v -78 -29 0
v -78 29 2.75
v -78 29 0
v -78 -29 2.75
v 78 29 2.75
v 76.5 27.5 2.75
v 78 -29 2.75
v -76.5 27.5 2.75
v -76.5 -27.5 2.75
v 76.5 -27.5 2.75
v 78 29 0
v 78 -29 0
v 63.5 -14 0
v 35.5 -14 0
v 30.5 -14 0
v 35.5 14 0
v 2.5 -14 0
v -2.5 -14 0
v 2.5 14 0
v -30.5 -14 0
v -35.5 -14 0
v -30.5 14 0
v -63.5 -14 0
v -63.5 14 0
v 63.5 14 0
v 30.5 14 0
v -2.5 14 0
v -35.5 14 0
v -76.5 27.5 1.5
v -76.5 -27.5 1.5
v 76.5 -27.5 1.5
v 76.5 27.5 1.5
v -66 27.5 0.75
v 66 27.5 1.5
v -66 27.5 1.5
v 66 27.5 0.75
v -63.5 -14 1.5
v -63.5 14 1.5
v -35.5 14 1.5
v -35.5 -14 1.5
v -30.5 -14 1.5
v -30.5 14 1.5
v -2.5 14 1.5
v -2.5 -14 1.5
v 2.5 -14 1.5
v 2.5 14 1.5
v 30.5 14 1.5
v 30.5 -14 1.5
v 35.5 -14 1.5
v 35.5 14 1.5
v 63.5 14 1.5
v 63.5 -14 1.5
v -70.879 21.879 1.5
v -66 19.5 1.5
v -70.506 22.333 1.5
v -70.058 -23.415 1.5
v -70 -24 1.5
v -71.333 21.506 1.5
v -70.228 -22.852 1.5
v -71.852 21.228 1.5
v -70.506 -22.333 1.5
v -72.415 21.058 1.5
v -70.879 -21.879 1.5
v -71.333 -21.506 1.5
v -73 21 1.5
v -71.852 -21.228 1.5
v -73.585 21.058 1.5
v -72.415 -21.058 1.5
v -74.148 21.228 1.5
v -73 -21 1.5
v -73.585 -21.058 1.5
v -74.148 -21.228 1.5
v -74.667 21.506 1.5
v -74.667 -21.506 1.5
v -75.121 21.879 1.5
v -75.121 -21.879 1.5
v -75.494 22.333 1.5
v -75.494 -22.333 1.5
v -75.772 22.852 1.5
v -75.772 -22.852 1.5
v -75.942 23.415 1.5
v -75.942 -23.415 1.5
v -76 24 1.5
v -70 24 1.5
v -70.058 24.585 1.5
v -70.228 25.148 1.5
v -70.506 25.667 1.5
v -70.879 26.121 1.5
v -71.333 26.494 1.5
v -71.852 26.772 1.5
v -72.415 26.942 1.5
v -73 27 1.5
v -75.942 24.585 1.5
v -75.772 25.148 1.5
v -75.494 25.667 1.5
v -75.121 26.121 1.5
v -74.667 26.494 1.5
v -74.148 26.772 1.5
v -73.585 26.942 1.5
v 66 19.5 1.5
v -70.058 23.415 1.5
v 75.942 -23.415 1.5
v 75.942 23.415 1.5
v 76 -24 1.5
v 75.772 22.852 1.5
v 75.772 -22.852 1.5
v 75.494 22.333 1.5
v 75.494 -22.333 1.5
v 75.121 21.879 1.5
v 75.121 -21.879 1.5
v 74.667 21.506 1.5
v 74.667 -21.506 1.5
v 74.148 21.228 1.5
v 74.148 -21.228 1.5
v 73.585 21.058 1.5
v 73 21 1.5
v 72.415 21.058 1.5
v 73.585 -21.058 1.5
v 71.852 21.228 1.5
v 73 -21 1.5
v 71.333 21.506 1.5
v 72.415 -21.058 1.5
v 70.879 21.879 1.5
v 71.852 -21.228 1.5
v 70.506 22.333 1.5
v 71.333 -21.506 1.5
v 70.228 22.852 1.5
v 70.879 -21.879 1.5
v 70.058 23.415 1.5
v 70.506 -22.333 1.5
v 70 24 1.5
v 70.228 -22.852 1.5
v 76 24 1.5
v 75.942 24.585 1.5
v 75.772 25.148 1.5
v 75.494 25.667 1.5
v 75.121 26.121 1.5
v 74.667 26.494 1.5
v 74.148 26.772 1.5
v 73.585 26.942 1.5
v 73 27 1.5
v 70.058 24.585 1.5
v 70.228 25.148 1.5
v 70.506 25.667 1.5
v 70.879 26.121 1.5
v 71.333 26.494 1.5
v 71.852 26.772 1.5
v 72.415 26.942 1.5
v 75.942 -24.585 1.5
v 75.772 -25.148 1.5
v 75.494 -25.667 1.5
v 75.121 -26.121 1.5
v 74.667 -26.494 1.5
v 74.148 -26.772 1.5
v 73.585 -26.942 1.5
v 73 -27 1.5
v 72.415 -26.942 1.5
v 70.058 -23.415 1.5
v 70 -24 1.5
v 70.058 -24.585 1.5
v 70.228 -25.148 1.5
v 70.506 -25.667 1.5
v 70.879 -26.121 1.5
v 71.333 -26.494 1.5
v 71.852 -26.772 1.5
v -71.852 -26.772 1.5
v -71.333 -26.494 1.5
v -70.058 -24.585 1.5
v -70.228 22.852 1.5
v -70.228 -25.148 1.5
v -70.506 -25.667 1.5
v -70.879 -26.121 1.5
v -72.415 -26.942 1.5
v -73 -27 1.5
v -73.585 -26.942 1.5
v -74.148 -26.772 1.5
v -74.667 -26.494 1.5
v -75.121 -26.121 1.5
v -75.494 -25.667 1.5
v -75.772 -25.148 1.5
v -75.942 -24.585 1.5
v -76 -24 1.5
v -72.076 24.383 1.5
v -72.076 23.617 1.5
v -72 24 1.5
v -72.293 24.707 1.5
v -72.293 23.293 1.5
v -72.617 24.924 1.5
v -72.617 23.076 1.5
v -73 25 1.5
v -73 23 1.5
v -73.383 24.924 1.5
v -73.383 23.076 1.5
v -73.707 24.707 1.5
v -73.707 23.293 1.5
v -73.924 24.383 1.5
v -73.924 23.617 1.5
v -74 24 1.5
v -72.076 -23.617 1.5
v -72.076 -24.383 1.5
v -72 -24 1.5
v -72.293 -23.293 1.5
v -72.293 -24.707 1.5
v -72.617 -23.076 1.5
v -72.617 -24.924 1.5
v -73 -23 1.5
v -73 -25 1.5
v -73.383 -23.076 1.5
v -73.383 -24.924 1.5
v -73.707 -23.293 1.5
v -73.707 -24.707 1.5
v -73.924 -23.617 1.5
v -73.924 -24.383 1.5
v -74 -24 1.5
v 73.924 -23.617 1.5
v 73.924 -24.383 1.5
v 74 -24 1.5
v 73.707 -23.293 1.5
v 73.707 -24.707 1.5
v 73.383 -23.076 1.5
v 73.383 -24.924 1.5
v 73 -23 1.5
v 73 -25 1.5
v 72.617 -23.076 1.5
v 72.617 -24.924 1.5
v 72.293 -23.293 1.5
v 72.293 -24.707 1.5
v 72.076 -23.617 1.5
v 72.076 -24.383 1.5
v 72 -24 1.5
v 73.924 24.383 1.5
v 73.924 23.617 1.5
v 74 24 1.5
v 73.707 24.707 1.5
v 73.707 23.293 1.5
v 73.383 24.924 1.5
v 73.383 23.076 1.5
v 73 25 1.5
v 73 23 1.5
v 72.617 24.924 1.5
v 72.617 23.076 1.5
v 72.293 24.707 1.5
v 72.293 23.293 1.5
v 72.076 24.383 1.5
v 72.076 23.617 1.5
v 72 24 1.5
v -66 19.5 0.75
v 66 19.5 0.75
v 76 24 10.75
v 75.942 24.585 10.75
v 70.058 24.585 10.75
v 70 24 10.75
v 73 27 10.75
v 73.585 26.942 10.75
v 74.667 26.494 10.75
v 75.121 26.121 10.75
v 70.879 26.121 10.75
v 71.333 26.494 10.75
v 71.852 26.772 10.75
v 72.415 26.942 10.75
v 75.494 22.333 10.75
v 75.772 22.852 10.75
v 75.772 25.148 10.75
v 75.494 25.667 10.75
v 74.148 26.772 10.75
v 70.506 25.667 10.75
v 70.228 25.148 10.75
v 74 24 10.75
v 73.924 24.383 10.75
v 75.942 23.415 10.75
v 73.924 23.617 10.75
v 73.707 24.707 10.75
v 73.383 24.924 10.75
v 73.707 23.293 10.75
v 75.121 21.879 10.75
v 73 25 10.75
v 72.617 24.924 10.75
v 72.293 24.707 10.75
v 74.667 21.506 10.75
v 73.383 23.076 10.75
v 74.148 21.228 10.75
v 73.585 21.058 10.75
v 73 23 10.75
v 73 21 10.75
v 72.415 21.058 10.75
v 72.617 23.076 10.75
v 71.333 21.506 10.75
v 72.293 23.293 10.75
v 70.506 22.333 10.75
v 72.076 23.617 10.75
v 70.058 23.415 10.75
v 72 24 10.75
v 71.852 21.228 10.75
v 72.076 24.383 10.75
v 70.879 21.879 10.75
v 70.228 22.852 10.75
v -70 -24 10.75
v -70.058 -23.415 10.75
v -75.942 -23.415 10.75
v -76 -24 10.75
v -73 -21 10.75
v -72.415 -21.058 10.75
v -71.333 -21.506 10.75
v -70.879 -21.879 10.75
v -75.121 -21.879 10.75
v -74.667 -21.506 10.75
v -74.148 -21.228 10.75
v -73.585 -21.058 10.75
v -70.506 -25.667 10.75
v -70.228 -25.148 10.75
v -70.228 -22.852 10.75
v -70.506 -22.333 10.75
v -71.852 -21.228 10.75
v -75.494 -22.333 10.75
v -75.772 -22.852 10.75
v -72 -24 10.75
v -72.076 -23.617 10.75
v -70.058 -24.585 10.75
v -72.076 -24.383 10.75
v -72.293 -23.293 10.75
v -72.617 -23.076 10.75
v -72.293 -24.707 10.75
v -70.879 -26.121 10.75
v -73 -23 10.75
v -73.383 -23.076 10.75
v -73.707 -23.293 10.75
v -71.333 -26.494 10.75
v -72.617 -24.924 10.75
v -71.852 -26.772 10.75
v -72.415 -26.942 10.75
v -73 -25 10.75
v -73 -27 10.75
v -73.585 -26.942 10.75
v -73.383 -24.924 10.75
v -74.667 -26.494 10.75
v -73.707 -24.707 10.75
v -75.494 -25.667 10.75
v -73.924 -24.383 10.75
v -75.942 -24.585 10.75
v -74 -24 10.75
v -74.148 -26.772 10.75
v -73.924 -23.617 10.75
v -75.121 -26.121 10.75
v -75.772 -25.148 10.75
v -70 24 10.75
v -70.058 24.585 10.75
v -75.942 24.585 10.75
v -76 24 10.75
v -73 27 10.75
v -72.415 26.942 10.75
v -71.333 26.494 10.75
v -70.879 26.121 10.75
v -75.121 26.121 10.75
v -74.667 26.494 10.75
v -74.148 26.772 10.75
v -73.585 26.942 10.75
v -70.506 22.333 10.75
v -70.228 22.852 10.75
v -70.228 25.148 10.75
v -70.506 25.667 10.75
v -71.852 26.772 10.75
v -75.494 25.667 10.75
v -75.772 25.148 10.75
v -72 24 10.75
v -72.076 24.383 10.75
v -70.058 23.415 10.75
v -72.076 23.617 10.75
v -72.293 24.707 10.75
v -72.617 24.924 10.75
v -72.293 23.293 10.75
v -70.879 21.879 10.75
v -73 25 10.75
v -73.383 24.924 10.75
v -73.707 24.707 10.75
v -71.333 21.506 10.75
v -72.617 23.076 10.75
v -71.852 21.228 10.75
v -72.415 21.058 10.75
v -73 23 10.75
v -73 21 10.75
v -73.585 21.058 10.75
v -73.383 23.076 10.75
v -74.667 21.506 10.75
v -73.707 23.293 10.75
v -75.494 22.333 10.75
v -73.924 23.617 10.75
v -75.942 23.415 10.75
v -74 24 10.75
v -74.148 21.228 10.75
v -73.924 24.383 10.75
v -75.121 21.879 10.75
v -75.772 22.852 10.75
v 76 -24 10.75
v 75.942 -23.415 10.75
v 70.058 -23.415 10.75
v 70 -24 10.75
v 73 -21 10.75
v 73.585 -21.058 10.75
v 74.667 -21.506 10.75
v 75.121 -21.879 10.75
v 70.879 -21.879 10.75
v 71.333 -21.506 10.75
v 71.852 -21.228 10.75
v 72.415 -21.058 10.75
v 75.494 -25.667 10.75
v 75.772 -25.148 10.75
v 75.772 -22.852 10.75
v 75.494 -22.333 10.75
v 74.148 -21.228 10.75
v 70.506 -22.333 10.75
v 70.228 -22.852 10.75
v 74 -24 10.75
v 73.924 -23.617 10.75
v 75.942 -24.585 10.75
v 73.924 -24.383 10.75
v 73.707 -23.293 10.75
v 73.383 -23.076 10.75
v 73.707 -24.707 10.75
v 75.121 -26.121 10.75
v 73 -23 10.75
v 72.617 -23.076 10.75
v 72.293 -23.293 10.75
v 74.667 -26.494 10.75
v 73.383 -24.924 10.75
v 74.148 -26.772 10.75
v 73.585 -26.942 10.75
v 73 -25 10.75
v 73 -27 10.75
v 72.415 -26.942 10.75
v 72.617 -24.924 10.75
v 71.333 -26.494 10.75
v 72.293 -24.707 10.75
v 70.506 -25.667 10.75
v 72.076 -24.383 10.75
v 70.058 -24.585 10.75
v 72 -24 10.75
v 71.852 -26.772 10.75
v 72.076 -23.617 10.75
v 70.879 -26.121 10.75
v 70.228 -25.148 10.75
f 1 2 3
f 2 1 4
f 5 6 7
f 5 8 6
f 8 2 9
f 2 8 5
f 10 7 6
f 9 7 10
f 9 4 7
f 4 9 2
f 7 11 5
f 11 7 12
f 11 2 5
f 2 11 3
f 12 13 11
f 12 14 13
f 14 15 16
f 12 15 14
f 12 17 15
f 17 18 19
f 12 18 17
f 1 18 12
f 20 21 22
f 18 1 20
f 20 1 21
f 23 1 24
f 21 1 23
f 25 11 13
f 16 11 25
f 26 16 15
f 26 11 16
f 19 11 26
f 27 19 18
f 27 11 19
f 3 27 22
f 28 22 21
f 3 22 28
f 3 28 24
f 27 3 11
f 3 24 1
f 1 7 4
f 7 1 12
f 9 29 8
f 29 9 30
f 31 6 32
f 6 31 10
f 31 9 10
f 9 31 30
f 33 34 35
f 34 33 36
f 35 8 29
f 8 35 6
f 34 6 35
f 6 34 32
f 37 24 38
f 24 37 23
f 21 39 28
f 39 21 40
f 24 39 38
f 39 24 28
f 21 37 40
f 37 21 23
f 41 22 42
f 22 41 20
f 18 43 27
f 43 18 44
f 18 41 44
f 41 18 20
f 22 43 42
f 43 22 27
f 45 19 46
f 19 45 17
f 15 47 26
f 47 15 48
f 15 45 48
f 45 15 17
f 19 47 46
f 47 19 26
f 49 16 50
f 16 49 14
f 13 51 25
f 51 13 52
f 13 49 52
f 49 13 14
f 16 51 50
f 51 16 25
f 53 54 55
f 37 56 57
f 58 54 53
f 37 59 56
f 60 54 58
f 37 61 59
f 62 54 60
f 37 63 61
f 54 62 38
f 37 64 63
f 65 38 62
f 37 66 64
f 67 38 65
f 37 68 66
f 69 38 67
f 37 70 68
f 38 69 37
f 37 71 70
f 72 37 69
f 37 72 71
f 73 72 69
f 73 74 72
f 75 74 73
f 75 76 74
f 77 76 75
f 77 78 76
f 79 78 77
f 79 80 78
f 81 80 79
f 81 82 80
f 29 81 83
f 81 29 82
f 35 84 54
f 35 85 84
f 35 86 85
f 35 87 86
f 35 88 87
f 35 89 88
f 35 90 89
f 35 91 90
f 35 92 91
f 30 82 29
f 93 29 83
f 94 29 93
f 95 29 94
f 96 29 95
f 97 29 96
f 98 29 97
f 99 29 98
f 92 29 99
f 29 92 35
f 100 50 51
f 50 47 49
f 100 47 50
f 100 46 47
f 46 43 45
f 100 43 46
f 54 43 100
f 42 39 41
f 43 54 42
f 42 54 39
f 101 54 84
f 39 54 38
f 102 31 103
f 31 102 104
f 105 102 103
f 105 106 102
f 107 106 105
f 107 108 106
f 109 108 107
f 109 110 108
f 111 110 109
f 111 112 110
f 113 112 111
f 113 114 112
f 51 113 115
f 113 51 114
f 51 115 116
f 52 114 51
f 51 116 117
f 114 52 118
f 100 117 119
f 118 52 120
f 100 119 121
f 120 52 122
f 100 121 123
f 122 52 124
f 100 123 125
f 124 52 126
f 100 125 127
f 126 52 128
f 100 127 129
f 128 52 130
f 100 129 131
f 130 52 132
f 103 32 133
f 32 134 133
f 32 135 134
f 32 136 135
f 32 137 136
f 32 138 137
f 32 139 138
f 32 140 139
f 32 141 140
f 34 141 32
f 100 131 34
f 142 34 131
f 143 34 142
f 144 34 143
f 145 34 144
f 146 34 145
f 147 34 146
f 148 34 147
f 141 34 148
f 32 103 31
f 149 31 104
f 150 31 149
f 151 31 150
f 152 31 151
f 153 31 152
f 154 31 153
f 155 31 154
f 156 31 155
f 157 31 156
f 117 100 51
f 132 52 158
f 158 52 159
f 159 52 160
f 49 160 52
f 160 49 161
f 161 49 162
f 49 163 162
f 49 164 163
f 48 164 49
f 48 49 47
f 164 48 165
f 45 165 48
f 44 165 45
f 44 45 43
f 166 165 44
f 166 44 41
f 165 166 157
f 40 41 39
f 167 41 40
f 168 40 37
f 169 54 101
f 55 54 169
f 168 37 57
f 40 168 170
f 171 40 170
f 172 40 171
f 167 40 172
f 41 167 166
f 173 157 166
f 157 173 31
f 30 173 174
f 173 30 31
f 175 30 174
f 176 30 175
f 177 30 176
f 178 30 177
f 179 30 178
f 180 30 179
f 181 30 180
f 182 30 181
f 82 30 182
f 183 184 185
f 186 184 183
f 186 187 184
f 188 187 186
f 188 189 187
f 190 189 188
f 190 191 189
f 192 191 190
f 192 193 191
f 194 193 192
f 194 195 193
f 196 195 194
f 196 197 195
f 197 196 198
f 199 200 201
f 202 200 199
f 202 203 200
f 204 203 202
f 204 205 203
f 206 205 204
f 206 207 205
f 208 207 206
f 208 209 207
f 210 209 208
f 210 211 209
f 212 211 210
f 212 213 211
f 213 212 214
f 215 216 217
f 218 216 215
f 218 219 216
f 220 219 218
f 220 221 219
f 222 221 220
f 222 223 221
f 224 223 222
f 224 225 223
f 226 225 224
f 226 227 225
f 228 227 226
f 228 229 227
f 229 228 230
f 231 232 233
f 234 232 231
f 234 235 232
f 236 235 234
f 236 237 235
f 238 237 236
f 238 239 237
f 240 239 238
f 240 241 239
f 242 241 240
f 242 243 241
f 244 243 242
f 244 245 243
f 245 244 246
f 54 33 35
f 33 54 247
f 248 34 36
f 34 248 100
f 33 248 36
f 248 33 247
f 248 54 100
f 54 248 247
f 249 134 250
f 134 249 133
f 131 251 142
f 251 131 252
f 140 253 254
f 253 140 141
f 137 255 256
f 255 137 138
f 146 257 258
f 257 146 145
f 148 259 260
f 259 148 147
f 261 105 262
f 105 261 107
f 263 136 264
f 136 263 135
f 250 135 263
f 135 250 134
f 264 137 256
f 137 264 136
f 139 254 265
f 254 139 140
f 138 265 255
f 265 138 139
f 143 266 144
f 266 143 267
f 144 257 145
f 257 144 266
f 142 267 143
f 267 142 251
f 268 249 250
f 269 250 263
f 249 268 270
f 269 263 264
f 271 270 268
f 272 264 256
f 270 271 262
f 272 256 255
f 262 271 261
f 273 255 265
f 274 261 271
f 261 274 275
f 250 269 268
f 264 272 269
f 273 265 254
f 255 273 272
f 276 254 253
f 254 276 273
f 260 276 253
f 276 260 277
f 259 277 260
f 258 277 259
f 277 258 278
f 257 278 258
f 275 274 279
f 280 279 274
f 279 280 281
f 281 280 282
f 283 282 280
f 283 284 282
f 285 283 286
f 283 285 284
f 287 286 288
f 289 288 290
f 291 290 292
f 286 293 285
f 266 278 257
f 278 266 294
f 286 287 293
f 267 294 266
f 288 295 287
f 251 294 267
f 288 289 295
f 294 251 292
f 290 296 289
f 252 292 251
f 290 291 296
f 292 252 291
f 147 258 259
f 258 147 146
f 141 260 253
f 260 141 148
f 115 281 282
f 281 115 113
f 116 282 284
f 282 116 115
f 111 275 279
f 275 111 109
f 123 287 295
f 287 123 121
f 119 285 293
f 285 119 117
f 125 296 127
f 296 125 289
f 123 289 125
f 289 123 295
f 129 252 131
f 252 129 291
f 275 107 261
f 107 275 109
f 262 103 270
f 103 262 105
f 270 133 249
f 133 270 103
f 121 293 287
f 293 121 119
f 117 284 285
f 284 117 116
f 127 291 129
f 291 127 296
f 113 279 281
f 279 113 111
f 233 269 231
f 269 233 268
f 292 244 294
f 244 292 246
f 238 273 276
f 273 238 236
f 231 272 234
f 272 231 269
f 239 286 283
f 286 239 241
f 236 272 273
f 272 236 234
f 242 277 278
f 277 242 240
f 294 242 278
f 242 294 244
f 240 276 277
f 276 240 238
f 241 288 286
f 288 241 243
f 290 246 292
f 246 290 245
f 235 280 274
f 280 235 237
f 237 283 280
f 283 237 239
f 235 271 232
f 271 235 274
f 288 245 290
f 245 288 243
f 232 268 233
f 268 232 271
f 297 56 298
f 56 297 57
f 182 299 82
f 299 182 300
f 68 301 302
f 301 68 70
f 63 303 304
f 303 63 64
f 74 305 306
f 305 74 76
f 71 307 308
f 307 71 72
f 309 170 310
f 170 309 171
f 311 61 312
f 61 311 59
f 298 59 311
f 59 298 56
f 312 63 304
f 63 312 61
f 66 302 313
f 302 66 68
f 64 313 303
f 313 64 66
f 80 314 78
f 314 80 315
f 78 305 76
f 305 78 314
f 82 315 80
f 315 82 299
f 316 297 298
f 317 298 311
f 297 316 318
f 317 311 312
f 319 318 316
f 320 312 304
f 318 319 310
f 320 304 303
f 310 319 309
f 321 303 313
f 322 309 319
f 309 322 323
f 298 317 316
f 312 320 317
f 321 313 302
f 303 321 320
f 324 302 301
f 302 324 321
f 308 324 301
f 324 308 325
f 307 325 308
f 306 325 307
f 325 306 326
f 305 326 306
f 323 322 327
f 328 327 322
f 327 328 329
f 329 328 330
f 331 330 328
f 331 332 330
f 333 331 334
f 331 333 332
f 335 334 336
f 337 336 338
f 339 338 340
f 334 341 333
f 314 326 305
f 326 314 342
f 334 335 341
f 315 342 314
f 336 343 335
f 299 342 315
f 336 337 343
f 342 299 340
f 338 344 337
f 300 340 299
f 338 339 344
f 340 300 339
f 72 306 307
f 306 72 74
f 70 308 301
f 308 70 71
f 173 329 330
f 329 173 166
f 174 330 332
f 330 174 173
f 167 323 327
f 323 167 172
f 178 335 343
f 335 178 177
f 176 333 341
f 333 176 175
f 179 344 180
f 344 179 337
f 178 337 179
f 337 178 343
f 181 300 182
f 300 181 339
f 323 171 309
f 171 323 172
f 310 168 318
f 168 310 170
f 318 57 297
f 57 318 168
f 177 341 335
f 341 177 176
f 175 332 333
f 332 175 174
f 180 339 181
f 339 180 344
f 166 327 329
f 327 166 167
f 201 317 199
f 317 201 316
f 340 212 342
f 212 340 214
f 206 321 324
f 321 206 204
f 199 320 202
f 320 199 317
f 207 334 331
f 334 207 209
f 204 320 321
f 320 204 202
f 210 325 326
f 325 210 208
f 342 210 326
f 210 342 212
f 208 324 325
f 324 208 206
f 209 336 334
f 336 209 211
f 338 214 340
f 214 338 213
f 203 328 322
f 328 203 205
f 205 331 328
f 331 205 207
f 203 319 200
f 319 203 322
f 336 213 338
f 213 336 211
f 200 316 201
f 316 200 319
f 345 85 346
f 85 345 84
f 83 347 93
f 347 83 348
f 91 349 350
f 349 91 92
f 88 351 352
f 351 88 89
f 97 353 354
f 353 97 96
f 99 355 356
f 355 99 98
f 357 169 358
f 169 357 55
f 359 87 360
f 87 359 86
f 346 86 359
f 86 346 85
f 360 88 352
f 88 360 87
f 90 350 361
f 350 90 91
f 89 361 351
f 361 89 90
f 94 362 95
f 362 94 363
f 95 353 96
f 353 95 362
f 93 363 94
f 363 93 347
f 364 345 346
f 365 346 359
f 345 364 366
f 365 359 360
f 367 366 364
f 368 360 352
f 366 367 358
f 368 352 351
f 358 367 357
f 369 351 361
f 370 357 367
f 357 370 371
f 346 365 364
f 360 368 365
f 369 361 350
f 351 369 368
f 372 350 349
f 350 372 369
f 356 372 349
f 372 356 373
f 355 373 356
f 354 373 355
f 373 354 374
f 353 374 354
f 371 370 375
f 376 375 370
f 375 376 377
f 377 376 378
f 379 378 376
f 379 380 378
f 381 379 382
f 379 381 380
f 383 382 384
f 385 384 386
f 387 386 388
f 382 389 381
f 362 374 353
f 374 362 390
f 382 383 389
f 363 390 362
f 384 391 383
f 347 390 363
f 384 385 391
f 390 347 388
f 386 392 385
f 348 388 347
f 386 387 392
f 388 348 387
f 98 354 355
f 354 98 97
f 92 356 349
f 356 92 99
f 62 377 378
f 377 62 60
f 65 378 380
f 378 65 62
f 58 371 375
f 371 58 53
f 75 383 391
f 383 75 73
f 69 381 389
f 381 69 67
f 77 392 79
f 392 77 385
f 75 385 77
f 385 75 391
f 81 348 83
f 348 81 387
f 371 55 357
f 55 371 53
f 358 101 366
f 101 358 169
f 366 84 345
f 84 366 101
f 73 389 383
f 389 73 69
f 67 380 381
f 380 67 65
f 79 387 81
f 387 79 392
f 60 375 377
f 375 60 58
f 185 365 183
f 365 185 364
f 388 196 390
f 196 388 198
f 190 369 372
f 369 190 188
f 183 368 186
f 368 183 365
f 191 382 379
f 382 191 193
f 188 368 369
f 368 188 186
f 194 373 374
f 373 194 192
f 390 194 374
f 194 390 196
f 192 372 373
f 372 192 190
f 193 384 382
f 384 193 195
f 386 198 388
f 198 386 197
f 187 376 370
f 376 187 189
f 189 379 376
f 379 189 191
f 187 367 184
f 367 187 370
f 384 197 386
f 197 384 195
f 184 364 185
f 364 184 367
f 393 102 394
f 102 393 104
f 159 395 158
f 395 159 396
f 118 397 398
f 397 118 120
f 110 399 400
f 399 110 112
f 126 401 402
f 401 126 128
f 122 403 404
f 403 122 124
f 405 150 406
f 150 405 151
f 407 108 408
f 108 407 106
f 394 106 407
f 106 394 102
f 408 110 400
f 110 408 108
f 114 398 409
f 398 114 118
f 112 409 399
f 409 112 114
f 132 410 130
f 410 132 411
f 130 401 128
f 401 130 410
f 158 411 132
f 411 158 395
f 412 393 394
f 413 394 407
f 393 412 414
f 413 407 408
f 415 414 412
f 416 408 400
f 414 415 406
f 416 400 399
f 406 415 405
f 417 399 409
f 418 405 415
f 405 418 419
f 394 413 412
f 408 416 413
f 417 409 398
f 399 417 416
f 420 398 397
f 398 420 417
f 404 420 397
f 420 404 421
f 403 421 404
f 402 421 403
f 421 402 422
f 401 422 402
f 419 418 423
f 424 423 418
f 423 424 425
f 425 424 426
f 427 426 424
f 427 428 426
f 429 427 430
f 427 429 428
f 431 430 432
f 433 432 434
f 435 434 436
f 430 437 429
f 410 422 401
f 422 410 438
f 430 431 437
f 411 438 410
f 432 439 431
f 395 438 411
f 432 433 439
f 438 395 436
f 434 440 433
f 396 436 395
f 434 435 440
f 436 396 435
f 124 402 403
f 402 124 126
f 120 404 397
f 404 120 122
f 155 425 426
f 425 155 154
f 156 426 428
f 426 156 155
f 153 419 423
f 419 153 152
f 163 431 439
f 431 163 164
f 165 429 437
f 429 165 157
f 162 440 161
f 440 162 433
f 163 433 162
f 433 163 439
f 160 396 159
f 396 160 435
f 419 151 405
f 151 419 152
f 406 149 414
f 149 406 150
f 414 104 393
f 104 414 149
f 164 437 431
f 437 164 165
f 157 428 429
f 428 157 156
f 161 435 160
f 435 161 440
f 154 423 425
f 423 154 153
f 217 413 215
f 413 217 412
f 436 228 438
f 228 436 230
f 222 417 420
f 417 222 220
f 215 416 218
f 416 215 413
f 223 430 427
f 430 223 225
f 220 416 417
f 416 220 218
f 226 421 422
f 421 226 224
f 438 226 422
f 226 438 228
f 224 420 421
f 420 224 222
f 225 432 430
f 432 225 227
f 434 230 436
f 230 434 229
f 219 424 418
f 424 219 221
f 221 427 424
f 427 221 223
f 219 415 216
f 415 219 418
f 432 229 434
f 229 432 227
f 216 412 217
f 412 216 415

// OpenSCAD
L0=33;
L1=24;
L2=4*L0+L1;
W0=48;
W1=10;
W2=W0+W1;
T=1.5;
H=13.5;
H2=T+1.25;

difference() {
    cube_center([L2,W2,H2]);
    cube_center([L2-2*T,W2-2*T,6]);
}

difference() {
cube_center([L2,W2,1.5]);
    
translate([0,0,0]) {
translate([-L0/2-L0,0,0])
digit();
translate([-L0/2,0,0])
digit();
translate([L0/2,0,0])
digit();
translate([L0/2+L0,0,0])
digit();
}

translate([0,23.5,0.75])
cube_center([L0*4,8,3]);

}

covermount();

module covermount() {
translate([L2/2-5,W2/2-5,0])
standoff(h=H2+8,od=6,id=2);
    translate([-L2/2+5,-W2/2+5,0])
standoff(h=H2+8,od=6,id=2);
    translate([-L2/2+5,W2/2-5,0])
standoff(h=H2+8,od=6,id=2);
    translate([L2/2-5,-W2/2+5,0])
standoff(h=H2+8,od=6,id=2);
}

module digit() {
        translate([0,0,0])
        cube_center([28,28,3]);
}

module standoff(od=5,id=2.5,h=12 ) {
    difference() {
    cylinder(d=od,h=h,$fn=32);
    cylinder(d=id,h=h+0.001,$fn=16);
    }
}
module cube_center(dims) {
  translate([0,0,dims[2]/2])
    cube(dims,center=true);
}
